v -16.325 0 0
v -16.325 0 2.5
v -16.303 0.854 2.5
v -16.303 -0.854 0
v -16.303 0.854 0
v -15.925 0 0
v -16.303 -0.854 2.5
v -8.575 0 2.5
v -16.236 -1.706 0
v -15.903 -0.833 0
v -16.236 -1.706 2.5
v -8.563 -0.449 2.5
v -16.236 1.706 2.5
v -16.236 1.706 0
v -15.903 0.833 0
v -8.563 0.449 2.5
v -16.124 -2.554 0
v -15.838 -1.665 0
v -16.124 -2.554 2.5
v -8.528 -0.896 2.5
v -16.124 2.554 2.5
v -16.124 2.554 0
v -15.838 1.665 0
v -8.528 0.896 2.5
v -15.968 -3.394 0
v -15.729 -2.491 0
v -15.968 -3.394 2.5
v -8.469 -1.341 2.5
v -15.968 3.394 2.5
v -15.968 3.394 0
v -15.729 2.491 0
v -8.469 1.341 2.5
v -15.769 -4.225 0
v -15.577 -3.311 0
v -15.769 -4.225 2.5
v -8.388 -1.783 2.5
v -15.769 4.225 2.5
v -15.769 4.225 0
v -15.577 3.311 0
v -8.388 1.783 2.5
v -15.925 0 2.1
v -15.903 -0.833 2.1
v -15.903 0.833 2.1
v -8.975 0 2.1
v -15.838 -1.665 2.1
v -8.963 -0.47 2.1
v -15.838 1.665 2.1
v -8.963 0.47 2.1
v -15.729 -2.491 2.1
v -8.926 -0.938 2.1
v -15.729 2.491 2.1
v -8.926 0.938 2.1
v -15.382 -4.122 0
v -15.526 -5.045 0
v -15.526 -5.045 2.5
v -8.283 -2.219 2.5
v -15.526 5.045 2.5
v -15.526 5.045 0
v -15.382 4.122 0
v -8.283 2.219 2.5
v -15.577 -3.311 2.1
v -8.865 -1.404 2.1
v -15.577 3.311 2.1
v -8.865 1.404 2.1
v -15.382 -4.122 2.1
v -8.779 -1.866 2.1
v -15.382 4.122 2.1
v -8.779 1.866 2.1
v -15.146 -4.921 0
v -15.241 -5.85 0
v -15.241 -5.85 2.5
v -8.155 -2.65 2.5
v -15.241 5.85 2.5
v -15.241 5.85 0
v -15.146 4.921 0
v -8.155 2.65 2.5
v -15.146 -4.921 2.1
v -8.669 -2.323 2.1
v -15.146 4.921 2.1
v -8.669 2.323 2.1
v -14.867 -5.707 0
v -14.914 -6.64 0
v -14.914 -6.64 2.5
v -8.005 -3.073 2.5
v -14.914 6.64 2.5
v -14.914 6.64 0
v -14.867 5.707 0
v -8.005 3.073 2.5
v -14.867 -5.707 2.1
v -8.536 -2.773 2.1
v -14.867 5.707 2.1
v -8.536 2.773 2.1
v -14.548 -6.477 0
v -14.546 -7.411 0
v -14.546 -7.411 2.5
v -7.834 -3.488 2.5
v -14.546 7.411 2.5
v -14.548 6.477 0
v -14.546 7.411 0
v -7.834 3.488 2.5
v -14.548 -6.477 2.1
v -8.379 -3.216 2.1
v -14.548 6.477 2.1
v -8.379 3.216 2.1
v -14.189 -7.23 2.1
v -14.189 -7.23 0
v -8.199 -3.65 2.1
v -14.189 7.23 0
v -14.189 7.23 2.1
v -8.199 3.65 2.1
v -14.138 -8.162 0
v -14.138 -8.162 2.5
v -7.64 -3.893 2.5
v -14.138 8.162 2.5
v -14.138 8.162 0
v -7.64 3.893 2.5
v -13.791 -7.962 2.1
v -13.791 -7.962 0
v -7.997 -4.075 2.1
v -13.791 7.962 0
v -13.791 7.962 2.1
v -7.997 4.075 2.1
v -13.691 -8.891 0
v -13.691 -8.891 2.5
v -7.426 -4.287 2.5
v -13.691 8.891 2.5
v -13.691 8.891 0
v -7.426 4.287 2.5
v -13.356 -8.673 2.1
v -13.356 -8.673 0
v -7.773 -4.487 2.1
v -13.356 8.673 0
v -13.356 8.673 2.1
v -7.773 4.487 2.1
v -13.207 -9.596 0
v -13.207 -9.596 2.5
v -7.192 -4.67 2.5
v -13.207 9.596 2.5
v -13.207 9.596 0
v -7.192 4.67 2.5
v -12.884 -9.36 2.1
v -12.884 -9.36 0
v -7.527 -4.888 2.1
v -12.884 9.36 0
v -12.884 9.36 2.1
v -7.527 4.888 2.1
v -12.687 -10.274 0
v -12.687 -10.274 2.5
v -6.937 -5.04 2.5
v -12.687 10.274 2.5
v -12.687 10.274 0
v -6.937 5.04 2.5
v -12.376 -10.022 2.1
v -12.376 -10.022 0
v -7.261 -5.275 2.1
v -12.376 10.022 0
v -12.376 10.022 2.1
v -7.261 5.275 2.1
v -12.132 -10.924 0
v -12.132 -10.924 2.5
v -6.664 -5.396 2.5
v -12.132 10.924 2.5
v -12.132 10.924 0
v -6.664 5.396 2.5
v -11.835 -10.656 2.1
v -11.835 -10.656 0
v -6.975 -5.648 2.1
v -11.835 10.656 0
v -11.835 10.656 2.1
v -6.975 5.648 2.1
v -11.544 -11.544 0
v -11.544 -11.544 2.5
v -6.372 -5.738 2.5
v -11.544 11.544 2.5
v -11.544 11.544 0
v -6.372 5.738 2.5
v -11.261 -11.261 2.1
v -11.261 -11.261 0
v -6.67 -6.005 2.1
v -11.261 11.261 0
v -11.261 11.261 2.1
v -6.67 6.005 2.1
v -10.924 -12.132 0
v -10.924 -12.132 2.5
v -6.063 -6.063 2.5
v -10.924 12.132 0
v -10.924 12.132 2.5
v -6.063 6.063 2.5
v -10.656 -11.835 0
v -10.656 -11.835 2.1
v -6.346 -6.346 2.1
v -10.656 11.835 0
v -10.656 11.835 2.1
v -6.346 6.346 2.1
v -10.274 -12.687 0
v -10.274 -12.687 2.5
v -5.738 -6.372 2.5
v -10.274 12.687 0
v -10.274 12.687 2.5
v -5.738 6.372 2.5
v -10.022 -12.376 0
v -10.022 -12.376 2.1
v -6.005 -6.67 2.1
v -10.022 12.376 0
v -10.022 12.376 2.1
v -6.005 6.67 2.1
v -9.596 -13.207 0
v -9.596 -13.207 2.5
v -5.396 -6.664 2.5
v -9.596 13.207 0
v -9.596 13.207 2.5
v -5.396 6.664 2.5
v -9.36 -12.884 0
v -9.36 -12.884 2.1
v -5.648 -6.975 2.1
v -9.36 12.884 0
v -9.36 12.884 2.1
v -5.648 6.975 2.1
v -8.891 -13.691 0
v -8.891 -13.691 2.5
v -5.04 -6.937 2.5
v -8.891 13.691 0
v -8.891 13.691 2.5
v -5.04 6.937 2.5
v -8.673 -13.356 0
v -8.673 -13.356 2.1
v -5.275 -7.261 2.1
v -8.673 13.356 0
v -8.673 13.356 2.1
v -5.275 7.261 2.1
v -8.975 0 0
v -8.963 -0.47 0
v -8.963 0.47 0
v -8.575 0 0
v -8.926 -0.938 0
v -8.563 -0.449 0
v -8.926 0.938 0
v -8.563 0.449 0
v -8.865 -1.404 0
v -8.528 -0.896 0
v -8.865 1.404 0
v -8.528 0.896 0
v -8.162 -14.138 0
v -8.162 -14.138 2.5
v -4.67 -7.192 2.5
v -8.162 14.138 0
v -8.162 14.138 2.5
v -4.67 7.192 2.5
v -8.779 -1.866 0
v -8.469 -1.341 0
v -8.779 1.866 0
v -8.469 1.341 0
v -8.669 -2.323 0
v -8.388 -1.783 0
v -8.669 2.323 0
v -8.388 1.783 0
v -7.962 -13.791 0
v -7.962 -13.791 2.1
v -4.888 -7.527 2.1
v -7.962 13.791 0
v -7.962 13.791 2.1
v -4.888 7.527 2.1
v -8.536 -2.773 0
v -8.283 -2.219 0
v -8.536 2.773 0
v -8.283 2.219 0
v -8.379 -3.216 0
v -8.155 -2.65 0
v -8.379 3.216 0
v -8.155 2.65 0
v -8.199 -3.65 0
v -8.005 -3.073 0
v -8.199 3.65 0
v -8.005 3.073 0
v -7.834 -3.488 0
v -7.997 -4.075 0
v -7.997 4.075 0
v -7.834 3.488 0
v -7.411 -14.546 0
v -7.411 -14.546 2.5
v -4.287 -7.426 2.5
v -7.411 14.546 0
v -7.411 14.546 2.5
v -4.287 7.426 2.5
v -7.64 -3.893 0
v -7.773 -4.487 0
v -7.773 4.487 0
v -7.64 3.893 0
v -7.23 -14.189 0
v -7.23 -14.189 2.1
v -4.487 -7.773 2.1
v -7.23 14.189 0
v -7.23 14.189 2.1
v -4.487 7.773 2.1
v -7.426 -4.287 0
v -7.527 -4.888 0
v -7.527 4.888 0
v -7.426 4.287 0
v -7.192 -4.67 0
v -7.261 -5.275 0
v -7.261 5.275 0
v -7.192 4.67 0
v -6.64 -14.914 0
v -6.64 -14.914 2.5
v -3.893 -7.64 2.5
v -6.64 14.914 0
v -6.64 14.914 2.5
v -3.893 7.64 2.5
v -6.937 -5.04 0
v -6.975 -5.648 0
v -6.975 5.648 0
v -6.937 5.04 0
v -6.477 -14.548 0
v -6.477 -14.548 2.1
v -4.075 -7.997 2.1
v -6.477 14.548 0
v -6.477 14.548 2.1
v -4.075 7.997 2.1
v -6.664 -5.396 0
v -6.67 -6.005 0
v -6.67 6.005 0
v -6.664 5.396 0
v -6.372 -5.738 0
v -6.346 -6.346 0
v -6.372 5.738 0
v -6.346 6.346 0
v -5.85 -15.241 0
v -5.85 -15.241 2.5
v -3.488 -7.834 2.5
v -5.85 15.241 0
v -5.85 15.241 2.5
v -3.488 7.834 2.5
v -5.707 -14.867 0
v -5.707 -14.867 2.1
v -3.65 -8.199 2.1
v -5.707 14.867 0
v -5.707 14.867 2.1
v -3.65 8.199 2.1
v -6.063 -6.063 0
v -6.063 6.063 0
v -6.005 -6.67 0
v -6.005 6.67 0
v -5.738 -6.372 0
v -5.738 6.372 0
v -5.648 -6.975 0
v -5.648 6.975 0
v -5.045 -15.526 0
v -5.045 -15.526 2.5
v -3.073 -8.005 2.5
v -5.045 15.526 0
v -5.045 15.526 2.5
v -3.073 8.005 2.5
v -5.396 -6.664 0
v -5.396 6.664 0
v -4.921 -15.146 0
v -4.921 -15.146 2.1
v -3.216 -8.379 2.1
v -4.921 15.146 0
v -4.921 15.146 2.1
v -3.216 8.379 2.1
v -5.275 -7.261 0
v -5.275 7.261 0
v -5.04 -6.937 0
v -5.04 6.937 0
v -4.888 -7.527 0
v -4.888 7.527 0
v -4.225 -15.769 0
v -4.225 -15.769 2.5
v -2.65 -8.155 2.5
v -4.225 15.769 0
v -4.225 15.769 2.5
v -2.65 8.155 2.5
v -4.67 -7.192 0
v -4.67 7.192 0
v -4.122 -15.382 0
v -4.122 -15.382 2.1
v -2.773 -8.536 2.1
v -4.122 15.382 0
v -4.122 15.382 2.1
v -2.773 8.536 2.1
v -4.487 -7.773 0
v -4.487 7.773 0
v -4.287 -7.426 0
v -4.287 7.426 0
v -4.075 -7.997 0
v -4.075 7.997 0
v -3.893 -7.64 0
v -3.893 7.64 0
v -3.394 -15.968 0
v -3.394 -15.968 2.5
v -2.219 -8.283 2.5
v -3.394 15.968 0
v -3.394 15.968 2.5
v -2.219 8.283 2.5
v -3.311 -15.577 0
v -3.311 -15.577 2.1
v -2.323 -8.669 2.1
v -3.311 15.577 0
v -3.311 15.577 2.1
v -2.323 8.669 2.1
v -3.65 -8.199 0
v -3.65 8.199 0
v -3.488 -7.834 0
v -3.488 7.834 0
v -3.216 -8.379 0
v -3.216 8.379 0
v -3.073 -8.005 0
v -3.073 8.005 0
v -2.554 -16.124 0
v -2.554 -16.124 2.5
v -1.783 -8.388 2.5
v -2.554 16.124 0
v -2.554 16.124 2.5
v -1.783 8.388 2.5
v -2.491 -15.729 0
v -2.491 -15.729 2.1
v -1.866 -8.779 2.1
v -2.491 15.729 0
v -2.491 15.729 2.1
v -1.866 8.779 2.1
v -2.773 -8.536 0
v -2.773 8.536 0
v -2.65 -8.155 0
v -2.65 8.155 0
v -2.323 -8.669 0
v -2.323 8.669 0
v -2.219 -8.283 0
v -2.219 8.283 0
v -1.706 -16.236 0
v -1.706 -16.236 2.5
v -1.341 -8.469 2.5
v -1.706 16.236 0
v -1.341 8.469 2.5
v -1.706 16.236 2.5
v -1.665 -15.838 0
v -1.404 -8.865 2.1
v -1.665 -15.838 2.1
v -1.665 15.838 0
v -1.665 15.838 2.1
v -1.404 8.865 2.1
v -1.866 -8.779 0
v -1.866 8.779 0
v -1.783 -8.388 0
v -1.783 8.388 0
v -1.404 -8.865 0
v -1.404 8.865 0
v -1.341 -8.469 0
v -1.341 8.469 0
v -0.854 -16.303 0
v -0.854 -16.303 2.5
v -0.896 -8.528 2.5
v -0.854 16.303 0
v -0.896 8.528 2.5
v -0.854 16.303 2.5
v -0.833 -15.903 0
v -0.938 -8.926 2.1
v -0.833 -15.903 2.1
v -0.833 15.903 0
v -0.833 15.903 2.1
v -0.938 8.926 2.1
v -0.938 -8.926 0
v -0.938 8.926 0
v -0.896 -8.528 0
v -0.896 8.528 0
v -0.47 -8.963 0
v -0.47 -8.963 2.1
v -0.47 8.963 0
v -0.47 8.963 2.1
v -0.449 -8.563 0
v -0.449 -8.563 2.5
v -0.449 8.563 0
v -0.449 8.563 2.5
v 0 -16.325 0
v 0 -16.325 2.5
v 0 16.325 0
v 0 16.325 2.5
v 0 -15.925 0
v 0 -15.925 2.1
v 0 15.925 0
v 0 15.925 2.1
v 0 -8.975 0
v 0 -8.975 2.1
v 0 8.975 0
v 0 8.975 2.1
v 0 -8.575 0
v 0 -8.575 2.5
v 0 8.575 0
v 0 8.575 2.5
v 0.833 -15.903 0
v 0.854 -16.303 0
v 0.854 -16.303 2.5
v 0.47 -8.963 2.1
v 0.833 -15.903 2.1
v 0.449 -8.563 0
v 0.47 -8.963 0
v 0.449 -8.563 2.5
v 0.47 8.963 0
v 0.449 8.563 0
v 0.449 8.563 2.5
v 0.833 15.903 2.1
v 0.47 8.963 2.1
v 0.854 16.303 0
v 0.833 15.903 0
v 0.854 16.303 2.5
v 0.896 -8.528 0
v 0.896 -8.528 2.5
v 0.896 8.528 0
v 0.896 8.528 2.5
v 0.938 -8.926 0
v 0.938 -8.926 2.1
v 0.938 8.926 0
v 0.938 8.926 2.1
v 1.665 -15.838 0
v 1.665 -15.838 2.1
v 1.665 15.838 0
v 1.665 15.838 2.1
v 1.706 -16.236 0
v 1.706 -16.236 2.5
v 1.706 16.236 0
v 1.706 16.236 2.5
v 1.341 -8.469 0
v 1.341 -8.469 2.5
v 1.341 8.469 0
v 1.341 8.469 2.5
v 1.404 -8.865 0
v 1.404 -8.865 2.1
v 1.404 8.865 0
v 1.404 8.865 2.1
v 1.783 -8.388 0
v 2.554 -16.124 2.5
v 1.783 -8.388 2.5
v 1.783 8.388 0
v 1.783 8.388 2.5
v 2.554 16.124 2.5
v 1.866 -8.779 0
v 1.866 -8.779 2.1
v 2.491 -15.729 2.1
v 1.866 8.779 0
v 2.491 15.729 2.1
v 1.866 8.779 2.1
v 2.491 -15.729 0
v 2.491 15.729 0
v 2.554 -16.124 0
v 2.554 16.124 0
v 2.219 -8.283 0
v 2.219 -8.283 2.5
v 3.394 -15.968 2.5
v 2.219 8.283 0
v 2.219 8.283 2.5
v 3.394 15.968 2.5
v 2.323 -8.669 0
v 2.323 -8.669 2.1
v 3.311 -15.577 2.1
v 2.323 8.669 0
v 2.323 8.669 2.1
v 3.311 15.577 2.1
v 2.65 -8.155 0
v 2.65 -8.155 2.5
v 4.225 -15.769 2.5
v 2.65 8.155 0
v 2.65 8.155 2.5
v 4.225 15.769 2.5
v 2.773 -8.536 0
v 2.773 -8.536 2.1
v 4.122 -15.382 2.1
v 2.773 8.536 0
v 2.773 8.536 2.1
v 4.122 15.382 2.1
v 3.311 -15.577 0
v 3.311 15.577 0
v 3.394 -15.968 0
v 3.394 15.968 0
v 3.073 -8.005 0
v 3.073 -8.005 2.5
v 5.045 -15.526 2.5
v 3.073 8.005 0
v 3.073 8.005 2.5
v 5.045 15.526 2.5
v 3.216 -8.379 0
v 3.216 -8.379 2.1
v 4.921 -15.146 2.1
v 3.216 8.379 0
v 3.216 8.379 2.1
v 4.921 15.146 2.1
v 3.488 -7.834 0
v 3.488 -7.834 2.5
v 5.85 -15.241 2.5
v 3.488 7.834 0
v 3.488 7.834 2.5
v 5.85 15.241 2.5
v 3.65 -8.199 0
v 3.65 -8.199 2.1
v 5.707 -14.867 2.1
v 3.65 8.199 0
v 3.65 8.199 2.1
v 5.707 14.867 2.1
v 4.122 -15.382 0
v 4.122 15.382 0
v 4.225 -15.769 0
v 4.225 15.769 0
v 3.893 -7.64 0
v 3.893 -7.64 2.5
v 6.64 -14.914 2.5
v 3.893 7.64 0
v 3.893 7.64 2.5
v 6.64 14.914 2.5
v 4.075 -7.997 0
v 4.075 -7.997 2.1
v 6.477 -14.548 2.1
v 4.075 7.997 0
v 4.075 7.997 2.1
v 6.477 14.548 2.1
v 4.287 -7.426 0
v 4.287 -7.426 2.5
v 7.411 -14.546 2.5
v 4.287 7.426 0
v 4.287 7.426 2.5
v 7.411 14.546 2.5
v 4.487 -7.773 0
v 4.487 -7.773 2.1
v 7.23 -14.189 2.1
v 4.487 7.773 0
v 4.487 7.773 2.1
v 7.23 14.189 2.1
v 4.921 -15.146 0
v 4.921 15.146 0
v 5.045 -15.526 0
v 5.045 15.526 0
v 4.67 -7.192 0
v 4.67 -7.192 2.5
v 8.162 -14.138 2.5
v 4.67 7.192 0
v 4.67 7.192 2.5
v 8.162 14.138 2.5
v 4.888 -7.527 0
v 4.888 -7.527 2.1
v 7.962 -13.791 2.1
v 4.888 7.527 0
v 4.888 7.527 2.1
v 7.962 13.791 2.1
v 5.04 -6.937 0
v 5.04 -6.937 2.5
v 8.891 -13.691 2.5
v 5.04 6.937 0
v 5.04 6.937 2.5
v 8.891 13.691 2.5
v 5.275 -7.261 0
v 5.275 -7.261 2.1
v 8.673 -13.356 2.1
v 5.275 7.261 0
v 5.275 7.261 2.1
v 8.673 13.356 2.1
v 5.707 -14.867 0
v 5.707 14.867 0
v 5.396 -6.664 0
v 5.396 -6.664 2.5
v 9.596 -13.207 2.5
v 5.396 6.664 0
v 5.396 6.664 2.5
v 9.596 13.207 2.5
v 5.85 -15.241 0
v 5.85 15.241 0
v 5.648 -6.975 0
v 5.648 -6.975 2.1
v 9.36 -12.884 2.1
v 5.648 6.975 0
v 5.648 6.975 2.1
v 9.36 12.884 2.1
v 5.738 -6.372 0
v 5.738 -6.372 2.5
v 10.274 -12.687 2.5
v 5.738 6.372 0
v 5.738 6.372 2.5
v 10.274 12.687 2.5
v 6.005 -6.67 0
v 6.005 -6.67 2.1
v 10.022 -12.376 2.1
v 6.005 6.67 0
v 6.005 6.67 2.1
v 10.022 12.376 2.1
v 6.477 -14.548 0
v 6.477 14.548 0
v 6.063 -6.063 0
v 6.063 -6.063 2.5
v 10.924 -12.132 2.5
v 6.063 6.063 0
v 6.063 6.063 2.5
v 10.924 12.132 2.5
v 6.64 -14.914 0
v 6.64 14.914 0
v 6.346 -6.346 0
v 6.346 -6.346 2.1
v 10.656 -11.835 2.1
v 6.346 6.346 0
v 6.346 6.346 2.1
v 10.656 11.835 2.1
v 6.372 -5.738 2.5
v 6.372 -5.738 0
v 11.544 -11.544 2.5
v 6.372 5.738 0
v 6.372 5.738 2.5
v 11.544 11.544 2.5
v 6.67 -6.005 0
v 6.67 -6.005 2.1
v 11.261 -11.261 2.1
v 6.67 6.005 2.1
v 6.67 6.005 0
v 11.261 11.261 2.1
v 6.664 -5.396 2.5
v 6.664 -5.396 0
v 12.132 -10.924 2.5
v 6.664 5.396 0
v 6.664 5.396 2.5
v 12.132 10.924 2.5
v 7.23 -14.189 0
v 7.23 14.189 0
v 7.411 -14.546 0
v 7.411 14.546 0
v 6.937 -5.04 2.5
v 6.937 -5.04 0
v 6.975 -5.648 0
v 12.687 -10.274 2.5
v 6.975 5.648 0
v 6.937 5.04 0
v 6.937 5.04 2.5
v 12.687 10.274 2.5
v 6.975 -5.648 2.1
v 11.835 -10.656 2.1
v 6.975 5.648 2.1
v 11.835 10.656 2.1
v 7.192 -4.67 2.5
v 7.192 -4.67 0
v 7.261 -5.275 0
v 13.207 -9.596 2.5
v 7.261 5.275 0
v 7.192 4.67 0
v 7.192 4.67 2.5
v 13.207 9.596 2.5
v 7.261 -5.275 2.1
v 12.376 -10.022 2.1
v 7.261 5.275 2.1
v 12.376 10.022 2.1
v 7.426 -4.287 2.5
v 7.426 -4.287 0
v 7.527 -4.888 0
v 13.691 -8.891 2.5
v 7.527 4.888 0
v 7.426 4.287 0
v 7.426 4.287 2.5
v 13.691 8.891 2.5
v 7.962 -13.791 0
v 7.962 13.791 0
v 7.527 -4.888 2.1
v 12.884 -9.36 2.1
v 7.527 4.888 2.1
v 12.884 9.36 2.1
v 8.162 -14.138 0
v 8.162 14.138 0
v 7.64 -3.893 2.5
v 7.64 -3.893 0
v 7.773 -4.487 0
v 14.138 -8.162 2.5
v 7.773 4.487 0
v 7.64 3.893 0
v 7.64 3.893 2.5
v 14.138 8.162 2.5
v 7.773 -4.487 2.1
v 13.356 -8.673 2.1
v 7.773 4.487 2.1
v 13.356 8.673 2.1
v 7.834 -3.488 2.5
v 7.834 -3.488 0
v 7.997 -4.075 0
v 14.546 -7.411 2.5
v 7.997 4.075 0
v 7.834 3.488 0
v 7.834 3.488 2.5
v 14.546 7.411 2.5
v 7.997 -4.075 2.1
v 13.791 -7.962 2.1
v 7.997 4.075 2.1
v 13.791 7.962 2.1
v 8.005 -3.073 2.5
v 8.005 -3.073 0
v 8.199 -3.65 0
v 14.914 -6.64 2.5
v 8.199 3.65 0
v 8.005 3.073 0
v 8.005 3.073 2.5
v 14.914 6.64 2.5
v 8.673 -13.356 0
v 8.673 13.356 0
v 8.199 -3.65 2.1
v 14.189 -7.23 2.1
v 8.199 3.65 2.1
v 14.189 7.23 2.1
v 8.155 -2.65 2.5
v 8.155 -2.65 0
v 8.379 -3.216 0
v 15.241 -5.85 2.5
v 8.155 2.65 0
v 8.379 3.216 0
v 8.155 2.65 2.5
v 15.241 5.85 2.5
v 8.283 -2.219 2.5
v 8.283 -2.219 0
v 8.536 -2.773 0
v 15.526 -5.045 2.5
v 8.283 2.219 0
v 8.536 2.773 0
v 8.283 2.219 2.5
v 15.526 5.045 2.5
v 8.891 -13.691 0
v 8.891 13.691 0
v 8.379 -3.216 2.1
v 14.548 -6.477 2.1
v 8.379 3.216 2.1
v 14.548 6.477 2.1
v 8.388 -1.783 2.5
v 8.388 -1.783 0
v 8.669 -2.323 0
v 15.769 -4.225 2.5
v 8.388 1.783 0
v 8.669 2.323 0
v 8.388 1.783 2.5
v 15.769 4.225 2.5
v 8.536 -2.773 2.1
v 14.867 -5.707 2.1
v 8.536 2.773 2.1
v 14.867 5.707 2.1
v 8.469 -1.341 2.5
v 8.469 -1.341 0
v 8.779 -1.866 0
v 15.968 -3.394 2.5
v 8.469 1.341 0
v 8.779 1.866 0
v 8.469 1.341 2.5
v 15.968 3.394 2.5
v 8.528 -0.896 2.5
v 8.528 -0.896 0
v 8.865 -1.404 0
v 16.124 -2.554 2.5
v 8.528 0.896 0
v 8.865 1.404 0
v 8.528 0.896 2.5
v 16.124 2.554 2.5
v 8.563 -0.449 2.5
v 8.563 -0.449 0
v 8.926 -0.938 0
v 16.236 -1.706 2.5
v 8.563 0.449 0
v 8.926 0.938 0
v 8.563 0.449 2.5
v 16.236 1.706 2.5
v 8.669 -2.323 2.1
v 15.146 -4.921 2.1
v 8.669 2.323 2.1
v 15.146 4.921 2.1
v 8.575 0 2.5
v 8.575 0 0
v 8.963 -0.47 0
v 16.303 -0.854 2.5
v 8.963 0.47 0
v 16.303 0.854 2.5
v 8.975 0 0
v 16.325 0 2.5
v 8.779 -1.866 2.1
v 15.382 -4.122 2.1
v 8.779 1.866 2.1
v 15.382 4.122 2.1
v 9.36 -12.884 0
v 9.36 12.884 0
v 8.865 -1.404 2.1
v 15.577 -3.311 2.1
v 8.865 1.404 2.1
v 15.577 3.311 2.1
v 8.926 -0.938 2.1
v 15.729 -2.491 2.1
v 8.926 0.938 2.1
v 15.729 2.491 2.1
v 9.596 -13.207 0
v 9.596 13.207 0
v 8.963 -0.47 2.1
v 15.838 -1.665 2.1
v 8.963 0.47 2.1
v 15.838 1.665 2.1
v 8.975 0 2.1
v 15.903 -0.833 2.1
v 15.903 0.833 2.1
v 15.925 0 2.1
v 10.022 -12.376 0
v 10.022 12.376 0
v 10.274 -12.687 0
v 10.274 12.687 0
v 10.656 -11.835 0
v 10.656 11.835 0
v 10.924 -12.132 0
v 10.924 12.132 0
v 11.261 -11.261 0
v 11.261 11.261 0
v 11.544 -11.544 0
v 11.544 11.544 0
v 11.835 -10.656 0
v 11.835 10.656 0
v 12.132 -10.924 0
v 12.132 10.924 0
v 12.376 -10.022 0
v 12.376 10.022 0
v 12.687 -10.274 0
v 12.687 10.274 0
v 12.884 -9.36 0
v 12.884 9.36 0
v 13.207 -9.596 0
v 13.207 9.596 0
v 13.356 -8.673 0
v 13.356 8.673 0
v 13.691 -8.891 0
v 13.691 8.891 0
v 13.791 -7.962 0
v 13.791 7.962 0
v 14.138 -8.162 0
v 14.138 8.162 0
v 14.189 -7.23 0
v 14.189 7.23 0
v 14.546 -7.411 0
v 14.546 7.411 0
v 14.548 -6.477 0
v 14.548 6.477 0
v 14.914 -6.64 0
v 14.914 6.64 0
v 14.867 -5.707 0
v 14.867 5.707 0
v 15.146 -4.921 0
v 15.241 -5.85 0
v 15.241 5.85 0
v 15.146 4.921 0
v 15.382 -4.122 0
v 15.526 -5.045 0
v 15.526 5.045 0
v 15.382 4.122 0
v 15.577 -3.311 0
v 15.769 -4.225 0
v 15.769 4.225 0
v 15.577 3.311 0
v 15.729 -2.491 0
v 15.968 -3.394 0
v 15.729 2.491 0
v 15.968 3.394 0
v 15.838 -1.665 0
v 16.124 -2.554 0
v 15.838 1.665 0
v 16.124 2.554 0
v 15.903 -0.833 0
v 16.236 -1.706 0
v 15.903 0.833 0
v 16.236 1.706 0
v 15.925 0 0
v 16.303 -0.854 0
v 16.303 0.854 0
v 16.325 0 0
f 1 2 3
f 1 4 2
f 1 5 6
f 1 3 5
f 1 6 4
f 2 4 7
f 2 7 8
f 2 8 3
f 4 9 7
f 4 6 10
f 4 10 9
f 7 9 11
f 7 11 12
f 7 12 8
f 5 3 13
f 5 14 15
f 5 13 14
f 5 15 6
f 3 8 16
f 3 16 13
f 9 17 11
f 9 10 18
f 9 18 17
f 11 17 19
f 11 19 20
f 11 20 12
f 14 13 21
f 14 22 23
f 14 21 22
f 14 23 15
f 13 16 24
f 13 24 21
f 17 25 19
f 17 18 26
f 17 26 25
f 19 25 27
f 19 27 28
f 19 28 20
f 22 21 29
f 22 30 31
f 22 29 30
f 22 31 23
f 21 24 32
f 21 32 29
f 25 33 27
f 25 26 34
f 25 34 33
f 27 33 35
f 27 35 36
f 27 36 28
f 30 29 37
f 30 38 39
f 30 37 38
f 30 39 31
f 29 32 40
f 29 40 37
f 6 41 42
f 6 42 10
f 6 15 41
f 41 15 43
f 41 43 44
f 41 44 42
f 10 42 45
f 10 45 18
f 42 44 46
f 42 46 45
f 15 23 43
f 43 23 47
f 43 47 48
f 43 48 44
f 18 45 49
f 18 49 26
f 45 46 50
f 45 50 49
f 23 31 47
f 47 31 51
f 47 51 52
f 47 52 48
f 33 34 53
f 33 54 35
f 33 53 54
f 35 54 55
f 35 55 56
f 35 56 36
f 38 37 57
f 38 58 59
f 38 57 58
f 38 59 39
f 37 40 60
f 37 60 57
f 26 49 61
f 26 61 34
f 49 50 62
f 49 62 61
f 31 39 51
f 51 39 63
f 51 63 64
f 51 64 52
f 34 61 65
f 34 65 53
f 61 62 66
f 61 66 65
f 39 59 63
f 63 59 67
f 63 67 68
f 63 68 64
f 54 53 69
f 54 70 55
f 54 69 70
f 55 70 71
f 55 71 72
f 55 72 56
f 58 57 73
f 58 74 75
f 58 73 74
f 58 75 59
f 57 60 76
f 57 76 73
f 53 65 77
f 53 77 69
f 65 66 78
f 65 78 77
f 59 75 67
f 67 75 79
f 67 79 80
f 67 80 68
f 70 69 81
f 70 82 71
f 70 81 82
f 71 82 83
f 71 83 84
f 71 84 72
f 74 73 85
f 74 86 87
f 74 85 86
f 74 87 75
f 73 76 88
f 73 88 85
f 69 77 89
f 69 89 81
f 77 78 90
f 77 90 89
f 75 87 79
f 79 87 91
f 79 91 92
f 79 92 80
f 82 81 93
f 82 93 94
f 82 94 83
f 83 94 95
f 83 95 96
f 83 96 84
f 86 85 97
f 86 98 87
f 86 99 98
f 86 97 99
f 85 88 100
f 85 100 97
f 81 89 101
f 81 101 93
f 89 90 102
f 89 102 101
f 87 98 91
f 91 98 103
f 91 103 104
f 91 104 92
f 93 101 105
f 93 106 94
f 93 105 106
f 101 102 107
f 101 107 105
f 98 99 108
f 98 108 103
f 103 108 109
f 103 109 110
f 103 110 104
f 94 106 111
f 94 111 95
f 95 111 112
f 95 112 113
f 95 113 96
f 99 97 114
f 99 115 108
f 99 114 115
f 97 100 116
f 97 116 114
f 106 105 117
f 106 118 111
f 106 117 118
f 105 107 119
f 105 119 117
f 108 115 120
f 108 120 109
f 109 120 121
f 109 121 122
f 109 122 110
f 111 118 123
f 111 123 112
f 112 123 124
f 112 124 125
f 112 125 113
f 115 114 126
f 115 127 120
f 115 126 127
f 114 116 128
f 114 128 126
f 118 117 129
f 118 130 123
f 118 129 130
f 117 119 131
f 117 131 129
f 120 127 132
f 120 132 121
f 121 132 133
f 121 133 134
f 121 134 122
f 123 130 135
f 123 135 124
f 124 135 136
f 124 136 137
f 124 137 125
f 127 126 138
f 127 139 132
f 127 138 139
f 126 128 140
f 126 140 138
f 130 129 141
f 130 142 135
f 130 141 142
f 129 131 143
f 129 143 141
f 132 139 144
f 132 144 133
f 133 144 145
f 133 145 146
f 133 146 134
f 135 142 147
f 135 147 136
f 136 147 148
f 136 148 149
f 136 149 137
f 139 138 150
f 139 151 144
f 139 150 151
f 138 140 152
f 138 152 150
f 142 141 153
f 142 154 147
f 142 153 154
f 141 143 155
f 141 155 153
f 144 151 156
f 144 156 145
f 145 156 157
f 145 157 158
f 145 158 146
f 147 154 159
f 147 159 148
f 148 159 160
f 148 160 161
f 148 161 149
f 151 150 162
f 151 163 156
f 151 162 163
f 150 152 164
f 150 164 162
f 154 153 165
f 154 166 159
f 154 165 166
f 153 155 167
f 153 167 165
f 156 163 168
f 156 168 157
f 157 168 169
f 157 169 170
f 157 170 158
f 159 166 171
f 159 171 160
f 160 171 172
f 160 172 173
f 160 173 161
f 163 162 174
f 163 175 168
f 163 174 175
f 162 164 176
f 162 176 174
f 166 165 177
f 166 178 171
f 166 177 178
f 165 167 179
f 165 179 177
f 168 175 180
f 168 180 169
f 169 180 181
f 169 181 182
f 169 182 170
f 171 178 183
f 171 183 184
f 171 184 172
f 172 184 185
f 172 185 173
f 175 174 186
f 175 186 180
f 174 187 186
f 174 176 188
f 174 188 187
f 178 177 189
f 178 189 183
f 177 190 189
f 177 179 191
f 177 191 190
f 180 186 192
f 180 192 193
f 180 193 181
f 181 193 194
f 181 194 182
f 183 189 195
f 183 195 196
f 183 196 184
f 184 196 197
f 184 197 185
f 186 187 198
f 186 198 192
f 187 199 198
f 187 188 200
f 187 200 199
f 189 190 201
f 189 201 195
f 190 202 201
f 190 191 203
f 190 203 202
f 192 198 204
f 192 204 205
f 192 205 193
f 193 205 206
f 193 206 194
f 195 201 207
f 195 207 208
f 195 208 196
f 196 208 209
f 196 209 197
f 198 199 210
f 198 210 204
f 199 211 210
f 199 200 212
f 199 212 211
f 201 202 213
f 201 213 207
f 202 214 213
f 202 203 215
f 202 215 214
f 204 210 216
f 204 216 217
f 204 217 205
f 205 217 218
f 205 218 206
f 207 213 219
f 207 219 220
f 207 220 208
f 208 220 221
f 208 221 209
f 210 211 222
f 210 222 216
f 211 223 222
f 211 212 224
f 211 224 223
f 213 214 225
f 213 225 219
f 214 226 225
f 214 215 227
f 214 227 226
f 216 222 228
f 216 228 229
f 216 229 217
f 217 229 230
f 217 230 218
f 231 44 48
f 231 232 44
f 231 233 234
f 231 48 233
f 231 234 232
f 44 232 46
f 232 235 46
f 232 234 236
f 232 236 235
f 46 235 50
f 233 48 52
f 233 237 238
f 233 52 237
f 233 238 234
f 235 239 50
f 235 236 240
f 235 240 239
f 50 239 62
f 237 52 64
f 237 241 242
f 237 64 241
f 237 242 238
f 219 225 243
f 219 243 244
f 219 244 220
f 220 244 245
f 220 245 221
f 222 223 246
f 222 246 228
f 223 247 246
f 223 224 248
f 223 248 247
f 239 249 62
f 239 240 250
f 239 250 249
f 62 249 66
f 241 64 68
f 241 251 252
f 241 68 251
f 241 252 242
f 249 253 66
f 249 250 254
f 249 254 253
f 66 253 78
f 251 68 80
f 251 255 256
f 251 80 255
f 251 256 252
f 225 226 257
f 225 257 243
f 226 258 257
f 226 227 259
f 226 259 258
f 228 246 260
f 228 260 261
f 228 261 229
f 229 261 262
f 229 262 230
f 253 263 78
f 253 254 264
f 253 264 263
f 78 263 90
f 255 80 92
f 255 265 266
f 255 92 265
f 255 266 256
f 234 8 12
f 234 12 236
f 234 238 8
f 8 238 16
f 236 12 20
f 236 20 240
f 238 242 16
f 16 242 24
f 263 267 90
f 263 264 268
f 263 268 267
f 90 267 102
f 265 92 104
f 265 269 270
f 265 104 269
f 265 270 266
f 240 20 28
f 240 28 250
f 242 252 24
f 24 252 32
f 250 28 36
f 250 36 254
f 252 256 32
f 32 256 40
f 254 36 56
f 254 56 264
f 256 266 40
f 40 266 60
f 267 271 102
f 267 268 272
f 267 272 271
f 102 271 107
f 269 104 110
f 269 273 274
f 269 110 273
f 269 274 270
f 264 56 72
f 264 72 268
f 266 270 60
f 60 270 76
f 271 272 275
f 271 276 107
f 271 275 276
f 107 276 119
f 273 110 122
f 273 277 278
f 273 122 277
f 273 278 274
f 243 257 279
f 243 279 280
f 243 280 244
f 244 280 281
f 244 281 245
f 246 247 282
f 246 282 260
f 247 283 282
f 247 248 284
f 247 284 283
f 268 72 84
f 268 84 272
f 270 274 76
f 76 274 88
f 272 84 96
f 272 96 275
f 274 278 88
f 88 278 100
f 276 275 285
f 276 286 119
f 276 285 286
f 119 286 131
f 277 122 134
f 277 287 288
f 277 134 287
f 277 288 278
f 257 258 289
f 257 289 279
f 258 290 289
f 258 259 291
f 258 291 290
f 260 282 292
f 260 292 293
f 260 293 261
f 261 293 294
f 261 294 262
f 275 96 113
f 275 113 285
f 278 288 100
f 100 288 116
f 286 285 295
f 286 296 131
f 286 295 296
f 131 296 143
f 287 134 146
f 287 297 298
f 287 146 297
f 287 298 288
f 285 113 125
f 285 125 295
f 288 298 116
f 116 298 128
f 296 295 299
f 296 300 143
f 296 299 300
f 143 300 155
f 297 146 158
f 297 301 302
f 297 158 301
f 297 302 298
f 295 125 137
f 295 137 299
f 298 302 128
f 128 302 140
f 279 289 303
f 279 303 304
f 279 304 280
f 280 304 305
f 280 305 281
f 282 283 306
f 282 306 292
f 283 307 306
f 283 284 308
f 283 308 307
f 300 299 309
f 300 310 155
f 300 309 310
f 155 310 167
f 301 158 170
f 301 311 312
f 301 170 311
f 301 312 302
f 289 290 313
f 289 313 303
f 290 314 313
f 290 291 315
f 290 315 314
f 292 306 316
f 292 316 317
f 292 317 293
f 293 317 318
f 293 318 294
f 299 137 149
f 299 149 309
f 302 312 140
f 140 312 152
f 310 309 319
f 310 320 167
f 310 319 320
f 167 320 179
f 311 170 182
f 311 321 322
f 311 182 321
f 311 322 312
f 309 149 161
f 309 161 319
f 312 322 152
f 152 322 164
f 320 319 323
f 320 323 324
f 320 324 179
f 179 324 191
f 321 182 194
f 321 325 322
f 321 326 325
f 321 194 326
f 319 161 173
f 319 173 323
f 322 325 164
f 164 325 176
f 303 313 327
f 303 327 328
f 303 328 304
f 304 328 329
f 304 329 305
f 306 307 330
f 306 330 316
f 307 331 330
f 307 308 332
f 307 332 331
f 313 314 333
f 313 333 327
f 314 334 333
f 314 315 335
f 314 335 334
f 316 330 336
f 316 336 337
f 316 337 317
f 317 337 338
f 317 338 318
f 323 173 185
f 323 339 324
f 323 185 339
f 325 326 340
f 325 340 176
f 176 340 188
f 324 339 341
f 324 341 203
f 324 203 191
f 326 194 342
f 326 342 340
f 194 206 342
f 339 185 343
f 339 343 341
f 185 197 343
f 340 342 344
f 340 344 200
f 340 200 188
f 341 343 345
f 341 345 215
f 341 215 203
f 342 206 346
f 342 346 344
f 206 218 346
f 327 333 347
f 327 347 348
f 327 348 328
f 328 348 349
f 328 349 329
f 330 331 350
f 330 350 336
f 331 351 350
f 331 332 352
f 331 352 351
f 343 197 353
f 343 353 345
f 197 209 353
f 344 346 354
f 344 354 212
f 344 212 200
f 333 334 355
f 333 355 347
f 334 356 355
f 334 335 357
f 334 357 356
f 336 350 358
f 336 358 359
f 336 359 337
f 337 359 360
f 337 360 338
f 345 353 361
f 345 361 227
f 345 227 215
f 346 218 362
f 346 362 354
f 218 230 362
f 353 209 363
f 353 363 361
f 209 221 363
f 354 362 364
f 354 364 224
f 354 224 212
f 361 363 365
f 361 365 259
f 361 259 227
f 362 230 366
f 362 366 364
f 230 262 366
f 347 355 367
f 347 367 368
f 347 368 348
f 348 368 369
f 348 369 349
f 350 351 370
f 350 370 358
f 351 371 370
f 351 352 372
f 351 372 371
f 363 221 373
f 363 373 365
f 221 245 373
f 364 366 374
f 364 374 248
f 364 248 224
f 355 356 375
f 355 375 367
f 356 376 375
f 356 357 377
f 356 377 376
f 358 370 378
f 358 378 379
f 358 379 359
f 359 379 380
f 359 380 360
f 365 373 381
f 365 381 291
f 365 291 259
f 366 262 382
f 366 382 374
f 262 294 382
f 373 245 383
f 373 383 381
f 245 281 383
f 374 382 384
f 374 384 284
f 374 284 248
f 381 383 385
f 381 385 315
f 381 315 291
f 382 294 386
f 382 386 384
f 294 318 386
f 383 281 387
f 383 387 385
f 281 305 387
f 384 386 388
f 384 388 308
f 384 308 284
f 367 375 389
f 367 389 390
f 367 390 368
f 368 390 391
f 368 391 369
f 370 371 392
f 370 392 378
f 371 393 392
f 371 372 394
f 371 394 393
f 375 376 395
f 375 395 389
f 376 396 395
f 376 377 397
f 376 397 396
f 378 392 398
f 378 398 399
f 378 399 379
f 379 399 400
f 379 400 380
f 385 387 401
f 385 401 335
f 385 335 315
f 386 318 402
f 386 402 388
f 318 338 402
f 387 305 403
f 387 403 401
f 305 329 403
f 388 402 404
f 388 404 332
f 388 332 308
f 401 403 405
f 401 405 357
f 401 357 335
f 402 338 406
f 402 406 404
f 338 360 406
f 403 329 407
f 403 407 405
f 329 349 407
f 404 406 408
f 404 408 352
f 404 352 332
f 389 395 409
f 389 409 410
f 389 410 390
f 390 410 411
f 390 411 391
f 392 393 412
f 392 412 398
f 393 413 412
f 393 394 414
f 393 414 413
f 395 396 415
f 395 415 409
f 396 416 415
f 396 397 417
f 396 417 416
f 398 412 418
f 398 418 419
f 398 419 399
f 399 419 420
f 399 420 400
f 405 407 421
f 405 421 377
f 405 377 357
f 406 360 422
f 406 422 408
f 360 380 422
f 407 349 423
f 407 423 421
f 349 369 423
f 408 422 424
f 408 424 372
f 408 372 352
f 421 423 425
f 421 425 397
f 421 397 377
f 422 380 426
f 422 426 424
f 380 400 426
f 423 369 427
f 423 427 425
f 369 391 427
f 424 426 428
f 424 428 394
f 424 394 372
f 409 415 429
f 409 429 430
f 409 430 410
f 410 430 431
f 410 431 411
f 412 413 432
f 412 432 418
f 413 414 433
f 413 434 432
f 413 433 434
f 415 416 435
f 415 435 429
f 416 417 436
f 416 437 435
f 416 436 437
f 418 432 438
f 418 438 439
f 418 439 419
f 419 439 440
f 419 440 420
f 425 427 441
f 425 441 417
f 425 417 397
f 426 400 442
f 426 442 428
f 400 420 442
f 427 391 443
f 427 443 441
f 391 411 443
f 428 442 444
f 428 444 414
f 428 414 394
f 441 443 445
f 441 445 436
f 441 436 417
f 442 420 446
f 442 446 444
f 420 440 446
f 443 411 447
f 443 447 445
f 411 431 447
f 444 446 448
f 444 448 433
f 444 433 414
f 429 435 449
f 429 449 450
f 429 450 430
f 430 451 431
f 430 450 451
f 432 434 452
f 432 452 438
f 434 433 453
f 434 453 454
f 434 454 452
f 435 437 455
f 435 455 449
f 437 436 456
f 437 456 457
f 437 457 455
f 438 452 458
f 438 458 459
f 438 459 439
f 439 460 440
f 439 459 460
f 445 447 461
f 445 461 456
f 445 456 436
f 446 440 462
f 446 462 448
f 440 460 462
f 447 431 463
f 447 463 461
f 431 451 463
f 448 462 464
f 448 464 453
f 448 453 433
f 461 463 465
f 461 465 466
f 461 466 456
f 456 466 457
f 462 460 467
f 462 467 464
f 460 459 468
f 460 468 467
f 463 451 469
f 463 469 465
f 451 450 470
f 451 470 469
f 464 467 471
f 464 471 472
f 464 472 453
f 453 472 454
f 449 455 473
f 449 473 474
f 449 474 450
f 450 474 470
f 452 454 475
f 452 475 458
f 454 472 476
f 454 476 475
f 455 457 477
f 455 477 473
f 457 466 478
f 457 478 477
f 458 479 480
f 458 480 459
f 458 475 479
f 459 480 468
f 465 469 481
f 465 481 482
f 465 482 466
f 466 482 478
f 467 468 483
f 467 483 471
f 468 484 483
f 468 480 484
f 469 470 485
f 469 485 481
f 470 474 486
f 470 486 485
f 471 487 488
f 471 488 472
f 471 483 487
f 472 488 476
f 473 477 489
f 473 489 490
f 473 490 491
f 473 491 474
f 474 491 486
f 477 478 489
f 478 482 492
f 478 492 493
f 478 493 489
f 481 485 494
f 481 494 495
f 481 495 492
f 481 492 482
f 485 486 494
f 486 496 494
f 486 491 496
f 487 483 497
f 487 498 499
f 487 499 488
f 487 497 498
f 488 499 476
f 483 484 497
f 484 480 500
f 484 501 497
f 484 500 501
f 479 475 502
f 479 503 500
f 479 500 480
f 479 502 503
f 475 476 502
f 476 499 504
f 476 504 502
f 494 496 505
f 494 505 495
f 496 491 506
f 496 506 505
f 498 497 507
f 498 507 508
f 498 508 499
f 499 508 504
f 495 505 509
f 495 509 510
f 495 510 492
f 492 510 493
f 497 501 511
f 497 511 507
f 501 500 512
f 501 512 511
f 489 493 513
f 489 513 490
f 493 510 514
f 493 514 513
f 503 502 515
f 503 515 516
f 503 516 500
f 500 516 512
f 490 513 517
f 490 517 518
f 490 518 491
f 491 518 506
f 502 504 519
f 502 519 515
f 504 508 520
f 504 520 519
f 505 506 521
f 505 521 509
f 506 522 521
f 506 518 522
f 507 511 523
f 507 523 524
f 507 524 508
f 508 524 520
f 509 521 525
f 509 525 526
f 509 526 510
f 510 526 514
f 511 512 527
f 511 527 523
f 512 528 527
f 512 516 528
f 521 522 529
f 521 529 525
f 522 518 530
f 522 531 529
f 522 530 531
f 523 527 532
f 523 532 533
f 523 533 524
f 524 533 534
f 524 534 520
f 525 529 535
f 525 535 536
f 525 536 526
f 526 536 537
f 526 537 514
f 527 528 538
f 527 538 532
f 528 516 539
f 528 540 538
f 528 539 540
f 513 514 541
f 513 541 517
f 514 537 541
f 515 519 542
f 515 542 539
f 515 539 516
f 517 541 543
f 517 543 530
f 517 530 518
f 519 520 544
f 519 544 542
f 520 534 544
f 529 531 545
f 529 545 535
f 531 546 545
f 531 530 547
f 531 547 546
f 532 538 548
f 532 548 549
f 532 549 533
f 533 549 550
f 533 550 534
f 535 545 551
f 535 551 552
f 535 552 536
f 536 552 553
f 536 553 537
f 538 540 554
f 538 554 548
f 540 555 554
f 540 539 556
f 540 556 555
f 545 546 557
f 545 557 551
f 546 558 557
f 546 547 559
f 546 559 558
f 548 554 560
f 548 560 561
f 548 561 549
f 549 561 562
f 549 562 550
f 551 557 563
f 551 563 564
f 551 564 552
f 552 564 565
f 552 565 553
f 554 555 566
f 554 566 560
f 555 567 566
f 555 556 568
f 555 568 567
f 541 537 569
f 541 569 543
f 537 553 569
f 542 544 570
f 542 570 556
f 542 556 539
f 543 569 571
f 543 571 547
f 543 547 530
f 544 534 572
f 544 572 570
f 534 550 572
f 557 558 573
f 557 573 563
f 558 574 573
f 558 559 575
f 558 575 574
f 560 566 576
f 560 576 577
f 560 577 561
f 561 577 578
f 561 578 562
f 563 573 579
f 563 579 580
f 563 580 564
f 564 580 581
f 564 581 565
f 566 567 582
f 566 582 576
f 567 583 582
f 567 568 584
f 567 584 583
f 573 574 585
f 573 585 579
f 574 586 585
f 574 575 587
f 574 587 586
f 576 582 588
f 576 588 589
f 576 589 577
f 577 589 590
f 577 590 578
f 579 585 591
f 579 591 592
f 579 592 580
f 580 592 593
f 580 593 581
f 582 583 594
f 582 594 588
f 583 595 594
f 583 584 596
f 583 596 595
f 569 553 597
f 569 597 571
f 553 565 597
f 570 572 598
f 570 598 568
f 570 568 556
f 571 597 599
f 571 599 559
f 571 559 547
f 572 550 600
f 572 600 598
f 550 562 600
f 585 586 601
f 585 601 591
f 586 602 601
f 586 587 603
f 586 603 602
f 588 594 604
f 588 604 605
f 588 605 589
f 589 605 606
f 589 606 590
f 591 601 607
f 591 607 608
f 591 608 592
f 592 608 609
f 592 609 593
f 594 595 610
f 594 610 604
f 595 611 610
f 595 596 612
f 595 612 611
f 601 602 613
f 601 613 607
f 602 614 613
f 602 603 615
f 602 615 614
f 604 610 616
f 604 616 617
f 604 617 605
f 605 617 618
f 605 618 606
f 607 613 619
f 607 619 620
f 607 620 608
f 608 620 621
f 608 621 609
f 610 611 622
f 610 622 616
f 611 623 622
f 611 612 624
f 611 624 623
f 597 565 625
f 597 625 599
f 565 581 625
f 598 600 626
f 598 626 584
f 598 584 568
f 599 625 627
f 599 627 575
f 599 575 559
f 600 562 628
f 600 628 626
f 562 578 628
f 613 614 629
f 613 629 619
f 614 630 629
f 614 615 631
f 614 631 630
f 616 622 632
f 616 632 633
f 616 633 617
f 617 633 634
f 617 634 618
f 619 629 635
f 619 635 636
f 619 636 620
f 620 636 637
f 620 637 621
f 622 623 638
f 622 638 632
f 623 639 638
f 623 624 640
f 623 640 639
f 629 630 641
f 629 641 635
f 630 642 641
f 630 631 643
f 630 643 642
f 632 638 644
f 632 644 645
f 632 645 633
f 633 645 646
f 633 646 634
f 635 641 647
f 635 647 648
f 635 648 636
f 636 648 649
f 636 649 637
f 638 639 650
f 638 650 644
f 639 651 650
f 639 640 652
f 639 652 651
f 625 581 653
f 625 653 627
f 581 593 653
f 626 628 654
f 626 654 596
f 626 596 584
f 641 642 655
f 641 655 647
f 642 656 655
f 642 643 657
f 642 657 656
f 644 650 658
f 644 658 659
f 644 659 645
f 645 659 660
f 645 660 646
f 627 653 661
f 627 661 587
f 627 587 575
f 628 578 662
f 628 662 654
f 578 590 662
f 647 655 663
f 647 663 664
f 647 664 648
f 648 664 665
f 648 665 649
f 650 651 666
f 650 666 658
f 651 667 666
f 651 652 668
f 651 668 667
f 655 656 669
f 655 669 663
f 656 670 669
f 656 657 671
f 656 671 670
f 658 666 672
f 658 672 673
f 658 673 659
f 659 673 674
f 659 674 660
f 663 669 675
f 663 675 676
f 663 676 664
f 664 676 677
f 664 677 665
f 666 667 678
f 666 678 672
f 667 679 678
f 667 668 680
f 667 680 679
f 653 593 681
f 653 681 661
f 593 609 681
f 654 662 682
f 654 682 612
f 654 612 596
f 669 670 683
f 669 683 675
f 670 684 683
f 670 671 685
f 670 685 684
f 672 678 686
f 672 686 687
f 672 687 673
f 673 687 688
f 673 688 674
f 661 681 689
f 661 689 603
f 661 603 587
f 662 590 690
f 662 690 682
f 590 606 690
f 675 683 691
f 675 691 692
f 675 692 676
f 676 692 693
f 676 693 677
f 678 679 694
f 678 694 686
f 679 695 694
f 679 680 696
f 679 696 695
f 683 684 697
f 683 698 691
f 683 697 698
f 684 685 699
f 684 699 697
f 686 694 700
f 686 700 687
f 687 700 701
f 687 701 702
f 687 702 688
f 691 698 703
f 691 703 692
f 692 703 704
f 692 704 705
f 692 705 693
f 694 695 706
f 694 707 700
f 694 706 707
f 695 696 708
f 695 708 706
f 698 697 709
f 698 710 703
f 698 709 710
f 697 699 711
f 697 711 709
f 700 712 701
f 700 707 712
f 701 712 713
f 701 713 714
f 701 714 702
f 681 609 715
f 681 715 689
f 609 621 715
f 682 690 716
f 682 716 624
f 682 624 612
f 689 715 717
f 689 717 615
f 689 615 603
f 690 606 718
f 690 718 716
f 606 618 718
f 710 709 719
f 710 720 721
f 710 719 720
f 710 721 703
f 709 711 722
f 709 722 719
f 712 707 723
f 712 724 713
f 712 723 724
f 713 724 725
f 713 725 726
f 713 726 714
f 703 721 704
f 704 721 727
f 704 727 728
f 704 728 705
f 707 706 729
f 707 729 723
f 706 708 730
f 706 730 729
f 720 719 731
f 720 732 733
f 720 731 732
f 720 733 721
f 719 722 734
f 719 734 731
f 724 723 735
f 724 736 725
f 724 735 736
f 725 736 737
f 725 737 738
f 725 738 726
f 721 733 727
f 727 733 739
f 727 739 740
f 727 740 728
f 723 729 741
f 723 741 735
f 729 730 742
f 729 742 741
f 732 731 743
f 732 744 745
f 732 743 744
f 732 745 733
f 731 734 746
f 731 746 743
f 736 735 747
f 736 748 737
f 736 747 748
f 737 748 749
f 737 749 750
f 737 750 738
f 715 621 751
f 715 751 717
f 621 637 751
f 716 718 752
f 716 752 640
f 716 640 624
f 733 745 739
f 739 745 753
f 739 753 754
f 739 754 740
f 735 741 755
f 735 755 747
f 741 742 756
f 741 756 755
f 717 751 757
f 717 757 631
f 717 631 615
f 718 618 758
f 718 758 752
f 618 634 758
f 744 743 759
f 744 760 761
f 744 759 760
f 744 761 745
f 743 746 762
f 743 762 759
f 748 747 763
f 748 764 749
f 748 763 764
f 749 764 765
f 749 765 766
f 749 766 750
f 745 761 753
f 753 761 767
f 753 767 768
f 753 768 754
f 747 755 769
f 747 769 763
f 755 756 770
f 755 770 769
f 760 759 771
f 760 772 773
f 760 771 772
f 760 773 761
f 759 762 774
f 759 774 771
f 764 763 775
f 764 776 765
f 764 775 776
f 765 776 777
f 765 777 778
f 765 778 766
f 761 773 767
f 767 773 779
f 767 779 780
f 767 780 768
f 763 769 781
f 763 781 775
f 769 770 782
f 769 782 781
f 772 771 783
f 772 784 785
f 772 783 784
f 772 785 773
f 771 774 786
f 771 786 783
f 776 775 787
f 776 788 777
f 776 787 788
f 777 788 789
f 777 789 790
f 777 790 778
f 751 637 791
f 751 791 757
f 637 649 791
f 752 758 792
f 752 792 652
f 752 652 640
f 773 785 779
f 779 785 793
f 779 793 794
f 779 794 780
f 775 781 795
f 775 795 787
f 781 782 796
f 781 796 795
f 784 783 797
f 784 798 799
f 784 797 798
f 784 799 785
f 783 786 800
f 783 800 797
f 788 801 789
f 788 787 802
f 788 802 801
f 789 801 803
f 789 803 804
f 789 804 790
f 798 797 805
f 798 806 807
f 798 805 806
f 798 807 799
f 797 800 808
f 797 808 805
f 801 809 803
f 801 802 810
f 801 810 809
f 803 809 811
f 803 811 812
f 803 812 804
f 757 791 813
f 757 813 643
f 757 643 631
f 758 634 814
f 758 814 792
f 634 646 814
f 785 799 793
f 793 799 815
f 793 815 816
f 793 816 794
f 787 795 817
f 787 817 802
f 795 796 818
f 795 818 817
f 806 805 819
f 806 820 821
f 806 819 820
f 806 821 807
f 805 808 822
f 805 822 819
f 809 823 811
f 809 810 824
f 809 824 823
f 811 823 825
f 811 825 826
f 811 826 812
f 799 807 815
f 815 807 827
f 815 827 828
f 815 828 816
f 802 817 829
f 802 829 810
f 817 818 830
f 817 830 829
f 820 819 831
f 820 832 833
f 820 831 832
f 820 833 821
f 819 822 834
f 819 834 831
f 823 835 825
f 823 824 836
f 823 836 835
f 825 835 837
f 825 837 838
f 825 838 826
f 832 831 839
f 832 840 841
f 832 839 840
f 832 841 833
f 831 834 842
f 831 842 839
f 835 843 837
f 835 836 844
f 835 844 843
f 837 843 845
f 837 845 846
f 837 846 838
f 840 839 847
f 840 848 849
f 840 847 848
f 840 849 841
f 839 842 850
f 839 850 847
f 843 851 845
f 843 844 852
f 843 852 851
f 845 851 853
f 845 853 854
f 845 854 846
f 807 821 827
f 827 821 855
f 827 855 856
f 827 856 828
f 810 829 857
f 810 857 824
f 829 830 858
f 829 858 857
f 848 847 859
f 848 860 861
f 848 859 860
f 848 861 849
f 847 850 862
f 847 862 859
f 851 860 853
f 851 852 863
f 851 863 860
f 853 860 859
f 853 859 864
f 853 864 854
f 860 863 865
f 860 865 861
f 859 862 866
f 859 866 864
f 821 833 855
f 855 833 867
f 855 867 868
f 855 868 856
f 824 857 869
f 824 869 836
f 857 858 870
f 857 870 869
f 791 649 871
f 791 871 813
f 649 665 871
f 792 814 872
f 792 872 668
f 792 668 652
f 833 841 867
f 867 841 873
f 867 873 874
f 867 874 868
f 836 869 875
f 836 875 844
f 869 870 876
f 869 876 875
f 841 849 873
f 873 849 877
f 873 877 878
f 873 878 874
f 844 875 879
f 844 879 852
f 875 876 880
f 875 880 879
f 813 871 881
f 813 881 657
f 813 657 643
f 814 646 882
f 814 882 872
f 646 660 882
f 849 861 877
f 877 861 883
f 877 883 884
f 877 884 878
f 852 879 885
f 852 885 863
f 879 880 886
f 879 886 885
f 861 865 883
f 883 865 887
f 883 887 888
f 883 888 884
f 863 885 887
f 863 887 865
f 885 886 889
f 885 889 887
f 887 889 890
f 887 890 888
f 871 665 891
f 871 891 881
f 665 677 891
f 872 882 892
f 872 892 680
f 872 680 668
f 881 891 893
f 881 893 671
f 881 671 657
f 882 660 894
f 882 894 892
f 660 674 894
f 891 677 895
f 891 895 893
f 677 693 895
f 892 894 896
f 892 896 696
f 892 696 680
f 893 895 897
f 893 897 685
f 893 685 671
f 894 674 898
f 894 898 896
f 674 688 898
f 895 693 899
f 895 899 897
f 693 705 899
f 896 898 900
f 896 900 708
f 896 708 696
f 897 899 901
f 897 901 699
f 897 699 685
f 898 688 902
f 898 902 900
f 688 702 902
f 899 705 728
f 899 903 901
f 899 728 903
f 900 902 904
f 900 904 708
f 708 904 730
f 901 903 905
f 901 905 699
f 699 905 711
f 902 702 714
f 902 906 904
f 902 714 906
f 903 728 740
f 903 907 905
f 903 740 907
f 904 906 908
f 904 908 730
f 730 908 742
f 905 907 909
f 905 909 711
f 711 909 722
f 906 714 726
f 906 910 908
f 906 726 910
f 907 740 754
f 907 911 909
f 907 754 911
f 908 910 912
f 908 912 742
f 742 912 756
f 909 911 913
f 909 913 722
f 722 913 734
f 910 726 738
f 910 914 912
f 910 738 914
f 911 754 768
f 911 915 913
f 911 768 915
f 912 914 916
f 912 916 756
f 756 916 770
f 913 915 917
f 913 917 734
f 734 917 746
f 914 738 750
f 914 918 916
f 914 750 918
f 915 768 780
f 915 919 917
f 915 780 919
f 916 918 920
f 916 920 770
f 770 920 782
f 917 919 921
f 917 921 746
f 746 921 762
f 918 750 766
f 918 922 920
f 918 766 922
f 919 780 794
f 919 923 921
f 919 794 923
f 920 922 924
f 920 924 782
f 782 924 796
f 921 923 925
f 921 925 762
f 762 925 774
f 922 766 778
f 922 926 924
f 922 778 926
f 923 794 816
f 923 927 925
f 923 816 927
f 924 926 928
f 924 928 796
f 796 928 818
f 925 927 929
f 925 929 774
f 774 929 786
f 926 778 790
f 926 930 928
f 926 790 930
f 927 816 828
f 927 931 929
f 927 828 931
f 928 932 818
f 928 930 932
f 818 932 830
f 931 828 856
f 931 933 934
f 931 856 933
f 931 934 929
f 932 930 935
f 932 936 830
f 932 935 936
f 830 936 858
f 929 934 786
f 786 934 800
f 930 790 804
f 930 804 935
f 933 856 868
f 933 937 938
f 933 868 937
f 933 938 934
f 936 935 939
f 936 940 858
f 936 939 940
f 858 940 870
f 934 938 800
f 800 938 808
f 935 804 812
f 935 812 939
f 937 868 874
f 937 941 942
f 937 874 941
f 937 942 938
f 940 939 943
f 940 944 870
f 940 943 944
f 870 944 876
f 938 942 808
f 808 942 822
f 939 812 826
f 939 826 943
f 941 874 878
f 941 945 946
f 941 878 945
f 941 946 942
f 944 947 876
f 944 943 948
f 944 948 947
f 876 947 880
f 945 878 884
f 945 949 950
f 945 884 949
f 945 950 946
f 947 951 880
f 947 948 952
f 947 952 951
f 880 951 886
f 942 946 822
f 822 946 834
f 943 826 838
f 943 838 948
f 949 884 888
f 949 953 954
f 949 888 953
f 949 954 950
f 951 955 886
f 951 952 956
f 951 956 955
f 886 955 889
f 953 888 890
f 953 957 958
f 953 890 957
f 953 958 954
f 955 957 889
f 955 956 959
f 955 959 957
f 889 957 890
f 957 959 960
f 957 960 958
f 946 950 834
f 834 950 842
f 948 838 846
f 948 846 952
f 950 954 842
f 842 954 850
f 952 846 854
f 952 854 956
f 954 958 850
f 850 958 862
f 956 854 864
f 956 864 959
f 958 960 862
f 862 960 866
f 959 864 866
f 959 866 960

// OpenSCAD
// =================================================================
// Author: JuanenRac (Electro Hobby 3D) <electrohobby3d@gmail.com>
// Copyright (C) 2026 JuanenRac (Electro Hobby 3D) <electrohobby3d@gmail.com>
//
// Licensed under the CERN Open Hardware Licence v2 - Strongly Reciprocal
// (CERN-OHL-S v2). Full text at https://cern-ohl.web.cern.ch/.
// =================================================================
// [ATC] UNIVERSAL MULTITOOL PAROL6 (JUANENBOT) - V1.0
// OPTICAL DIFFUSER FOR LED RING - COMPLEMENTARY PART V1.0
// SYSTEM: Concentric lower press-fit.
// RECOMMENDATION: Print in Translucent / Opaline material.
// =================================================================

$fn = 120; // High resolution for a clean circular optical finish

// --- DIMENSIONS EXTRACTED FROM SUCTION CUP PART V1.9 ---
led_housing_diam     = 32.8; // Outer diameter of LED housing
optical_tunnel_diam  = 17.0; // Central clear passage for camera lens
led_housing_depth    = 4.0;  // Height of recess in main part

// --- DIFFUSER PARAMETERS (Optical fit) ---
fit_clearance          = 0.15; // Diametral tolerance for press fit in PETG
diffuser_wall_thickness = 0.4;  // Perimeter thickness for good light diffusion
diffuser_height         = 2.5;  // Slightly lower than recess to fit flush


module led_ring_diffuser() {
    // Calculate actual diameters applying printing tolerances
    actual_ext_diam = led_housing_diam - fit_clearance;
    actual_int_diam = optical_tunnel_diam + fit_clearance;
    
    difference() {
        // --- 1. TOTAL SOLID BODY (Base ring) ---
        cylinder(h=diffuser_height, r=actual_ext_diam/2, center=false);
        
        // --- 2. OPTICAL TUNNEL HOLLOWING (Camera passage) ---
        translate([0, 0, -1])
        cylinder(h=diffuser_height + 2, r=actual_int_diam/2, center=false);
        
        // --- 3. INNER CHANNEL FOR LEDS (Inverted U hollow) ---
        // Leaves a thin top layer (roof) and side walls to guide light
        translate([0, 0, -0.1])
        difference() {
            // Outer boundary of internal channel
            cylinder(h=diffuser_height - diffuser_wall_thickness + 0.1, r=(actual_ext_diam/2) - diffuser_wall_thickness, center=false);
            
            // Inner boundary of internal channel
            translate([0, 0, -0.5])
            cylinder(h=diffuser_height + 1, r=(actual_int_diam/2) + diffuser_wall_thickness, center=false);
        }
    }
}

// Diffuser render
led_ring_diffuser();
